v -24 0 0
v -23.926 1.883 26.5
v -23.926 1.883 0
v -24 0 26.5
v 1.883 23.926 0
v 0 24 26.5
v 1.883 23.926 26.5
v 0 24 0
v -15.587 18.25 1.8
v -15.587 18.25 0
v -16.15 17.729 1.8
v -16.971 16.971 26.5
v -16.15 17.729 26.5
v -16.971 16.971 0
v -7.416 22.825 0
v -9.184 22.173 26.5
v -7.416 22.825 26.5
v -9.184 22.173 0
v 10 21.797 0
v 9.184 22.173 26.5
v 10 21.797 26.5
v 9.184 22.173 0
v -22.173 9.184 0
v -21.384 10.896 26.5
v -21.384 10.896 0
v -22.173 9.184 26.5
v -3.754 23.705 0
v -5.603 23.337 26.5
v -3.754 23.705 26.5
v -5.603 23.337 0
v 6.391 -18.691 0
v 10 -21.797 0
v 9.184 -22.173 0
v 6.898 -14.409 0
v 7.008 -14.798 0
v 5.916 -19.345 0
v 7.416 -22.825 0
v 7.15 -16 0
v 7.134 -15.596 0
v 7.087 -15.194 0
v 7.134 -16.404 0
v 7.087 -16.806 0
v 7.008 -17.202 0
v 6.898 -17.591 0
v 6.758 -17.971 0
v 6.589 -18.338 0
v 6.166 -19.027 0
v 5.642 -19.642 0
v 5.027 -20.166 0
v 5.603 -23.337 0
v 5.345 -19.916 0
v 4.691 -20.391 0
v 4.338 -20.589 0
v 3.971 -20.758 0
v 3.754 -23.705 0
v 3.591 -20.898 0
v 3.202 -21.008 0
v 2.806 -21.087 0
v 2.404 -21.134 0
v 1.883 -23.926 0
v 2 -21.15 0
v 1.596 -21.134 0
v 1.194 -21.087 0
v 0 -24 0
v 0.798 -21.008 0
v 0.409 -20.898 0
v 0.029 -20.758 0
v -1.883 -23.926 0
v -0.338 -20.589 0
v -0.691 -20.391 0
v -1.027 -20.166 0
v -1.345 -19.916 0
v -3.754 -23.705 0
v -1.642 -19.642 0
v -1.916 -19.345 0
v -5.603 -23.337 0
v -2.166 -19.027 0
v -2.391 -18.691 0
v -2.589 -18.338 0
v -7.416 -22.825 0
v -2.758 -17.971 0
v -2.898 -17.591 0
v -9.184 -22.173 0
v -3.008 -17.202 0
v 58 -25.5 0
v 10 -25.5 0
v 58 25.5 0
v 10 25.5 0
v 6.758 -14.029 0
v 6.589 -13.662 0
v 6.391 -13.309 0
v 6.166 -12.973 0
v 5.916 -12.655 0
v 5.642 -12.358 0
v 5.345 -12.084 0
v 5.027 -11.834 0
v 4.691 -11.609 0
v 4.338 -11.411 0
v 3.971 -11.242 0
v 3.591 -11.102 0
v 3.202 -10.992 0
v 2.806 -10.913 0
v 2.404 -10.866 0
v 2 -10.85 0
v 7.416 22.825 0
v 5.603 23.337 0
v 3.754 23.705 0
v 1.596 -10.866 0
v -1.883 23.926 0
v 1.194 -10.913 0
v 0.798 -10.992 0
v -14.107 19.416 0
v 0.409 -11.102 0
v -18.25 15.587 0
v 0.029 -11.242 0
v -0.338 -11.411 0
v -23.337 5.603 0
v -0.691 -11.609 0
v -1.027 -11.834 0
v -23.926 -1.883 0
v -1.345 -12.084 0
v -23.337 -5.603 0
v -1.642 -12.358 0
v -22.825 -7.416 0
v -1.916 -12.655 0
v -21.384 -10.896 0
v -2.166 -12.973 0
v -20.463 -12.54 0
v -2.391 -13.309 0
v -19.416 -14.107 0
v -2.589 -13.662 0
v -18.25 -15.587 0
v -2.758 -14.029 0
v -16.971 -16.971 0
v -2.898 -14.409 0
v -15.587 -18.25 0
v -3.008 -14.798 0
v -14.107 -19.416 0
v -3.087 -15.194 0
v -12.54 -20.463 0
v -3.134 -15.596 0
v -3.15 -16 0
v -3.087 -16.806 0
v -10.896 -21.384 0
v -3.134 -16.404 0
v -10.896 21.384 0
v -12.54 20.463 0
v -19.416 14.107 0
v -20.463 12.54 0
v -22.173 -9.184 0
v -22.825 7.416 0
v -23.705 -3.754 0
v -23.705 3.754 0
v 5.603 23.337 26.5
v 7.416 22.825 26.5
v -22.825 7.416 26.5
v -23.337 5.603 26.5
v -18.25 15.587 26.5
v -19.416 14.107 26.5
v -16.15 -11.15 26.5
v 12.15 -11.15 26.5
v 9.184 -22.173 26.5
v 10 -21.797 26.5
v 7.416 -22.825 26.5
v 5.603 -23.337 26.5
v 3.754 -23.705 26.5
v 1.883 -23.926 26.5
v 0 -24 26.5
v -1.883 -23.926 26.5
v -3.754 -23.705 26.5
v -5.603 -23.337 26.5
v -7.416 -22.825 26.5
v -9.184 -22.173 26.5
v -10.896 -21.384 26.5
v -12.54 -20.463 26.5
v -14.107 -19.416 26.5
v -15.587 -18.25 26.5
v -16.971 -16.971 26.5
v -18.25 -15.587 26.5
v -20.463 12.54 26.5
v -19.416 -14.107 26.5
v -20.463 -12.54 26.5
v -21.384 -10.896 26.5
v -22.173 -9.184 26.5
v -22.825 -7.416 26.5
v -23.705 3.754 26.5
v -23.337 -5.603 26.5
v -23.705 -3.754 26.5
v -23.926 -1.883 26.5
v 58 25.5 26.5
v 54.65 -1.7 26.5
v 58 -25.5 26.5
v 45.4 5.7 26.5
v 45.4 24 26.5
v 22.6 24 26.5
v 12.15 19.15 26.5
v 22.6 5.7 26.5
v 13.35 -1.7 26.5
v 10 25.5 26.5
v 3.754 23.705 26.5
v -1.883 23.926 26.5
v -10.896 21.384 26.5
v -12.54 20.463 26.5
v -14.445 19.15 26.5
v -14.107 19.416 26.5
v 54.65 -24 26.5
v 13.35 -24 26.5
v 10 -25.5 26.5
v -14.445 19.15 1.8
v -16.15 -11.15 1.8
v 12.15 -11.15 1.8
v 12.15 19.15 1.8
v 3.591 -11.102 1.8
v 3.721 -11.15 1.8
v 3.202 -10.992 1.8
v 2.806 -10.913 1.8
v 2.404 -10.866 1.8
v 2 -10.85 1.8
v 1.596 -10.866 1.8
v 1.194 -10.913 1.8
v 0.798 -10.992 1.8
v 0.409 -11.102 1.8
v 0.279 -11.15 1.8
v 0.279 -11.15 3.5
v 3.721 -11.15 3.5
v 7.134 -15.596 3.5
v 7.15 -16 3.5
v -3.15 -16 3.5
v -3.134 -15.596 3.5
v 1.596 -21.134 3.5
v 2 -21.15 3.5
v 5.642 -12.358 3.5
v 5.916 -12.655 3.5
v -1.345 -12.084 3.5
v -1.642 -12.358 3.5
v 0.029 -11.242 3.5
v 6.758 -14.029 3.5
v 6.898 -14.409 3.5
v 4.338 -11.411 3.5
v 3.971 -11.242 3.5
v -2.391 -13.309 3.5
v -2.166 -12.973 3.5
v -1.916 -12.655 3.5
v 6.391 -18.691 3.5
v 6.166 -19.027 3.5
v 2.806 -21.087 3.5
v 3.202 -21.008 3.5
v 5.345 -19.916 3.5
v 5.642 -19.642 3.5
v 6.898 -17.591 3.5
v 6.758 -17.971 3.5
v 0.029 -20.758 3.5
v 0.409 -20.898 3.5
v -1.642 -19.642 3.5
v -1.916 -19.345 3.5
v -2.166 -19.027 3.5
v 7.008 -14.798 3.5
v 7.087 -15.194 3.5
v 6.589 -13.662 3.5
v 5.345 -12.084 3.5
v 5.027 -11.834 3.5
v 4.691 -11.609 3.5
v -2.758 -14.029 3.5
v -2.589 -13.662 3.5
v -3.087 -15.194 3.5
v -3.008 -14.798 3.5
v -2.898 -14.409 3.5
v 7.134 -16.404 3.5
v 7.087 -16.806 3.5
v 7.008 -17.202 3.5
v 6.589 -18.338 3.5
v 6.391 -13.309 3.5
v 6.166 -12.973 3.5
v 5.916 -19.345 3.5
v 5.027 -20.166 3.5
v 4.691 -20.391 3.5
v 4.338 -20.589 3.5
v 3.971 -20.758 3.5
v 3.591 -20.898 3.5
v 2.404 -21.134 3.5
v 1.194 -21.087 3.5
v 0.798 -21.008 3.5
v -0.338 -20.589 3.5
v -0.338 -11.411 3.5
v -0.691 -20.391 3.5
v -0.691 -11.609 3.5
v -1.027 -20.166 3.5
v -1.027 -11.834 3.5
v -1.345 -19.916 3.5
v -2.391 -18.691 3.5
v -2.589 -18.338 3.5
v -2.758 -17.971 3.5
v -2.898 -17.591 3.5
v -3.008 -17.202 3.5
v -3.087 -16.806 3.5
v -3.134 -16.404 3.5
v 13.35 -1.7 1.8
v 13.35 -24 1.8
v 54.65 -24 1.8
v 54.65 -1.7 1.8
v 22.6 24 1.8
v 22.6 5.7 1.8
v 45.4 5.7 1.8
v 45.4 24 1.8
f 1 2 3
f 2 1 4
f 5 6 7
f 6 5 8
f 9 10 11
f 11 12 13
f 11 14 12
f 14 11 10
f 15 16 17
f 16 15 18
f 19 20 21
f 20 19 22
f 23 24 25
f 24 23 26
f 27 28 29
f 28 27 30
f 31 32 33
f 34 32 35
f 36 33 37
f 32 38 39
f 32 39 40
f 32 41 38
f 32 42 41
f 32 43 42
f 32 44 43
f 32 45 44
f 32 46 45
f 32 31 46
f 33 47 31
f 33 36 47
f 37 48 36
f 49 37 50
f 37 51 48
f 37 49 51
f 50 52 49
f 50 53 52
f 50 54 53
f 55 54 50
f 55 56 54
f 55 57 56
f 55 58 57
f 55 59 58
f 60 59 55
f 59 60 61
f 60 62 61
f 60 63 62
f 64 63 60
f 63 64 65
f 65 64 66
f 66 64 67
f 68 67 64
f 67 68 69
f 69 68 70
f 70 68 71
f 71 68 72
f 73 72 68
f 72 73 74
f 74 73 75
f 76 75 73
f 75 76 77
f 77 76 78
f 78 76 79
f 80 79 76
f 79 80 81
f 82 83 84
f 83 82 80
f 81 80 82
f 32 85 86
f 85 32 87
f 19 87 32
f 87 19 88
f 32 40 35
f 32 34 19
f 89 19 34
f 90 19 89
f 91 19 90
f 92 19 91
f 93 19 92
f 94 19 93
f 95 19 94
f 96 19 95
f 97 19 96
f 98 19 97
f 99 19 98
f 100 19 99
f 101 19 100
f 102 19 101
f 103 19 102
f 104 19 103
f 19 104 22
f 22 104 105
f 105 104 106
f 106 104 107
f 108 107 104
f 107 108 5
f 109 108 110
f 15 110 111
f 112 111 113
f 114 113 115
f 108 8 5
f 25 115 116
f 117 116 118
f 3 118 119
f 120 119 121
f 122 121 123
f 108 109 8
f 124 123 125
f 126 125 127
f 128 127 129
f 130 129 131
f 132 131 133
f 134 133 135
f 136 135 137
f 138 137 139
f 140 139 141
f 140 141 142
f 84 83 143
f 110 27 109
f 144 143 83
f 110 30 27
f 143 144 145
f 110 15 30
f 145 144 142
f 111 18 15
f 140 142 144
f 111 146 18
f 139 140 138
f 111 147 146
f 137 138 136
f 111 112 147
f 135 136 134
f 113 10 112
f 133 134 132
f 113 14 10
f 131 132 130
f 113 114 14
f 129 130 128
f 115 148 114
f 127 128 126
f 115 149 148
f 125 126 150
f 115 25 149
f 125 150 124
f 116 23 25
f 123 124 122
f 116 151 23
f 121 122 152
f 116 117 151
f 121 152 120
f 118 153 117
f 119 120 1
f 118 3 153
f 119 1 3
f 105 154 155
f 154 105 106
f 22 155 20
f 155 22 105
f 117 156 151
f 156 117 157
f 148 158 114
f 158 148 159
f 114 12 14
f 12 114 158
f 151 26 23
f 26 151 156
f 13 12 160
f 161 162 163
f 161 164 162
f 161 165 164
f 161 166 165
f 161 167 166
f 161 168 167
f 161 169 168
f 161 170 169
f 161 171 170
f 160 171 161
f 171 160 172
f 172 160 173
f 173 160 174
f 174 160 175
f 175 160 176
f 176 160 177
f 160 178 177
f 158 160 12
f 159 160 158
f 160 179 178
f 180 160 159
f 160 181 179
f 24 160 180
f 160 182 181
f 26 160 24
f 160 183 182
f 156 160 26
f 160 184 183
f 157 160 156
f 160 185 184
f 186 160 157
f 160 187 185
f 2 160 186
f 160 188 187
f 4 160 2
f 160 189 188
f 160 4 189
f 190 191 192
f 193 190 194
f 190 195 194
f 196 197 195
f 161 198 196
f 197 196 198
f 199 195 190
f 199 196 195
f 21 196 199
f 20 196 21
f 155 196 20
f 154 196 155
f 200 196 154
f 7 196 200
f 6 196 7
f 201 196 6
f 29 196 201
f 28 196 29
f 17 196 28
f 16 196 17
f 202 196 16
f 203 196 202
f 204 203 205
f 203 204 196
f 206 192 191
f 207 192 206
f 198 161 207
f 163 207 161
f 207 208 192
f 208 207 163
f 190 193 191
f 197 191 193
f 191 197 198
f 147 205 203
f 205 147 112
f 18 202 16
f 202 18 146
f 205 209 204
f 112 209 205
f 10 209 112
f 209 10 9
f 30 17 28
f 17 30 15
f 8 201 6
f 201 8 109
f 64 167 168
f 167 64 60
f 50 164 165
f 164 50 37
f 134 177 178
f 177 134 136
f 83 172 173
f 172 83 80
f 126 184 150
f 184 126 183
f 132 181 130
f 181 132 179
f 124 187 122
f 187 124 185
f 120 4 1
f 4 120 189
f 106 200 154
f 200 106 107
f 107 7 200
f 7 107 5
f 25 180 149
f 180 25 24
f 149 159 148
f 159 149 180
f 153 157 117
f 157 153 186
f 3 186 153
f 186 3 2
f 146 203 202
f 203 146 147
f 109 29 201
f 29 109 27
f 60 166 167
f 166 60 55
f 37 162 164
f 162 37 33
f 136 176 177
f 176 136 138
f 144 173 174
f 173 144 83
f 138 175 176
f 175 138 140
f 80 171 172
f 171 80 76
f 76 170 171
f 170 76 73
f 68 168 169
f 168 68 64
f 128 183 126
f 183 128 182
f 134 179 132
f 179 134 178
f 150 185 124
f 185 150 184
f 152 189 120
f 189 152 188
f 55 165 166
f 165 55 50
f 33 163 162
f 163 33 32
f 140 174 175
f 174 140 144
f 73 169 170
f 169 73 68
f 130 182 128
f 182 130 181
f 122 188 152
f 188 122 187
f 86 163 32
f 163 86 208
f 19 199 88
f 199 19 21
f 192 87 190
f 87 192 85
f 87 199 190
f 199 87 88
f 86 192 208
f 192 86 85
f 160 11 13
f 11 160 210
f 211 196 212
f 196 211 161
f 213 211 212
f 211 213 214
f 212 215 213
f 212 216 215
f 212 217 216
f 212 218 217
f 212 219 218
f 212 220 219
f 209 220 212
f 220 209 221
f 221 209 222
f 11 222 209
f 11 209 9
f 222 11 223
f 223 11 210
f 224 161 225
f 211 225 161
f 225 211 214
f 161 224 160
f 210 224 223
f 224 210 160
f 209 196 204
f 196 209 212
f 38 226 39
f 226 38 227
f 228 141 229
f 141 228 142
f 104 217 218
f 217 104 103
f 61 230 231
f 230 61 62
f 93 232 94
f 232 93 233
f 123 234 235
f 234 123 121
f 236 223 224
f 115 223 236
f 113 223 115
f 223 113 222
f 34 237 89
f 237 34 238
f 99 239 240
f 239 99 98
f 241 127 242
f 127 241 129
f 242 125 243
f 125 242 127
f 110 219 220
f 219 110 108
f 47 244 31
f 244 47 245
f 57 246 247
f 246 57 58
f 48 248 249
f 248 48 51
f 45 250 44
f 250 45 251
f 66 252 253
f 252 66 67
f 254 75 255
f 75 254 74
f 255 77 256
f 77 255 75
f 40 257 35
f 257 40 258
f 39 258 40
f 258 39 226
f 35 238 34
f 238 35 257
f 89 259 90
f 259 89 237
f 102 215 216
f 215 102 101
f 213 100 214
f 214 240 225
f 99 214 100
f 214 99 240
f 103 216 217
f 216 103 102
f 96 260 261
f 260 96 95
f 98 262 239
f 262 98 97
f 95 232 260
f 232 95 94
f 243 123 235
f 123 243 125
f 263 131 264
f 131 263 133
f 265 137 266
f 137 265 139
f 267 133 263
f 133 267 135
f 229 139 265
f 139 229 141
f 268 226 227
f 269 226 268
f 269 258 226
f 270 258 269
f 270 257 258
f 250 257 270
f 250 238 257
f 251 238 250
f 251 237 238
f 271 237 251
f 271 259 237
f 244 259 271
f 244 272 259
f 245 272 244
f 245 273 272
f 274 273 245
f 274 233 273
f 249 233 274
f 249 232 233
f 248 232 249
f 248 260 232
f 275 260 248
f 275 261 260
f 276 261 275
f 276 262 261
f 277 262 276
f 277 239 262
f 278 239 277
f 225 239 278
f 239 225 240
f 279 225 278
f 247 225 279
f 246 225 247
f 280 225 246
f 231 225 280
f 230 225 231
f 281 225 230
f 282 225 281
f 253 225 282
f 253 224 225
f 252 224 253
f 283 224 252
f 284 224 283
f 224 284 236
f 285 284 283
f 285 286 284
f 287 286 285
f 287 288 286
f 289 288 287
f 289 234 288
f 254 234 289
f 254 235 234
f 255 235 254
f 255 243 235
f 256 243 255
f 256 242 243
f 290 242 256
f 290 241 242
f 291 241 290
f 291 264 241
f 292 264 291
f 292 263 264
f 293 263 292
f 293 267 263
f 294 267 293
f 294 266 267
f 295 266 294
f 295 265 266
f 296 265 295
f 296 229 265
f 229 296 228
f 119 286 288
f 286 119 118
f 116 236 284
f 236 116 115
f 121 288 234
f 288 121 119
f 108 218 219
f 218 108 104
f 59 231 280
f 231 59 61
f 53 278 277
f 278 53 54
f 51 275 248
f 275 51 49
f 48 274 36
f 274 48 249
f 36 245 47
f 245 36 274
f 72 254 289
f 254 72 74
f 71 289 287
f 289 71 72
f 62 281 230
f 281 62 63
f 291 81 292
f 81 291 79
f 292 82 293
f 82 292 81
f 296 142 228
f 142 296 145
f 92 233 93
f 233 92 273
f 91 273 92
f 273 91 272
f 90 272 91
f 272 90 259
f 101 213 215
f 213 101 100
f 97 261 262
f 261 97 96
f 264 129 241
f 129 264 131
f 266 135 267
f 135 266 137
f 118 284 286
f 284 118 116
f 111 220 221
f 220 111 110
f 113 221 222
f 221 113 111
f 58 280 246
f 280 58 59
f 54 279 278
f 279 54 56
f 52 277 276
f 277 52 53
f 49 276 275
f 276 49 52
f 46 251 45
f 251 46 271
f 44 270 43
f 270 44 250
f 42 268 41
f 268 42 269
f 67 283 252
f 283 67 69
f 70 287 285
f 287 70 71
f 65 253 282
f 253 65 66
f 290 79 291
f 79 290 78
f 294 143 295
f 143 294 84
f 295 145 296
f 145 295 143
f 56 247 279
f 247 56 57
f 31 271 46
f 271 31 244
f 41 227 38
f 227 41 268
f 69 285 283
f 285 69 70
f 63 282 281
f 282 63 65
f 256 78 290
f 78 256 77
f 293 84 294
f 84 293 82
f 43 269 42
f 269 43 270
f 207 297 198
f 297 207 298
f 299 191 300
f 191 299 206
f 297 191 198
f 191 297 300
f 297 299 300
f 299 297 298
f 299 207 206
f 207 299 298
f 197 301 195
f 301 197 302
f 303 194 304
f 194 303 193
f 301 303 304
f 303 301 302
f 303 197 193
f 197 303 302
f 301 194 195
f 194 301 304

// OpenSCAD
// file: wrist_puck_keyhole_1_0.scad
// ============================================================
//  Wrist-Puck Keyhole Enclosure — First Draft
//  Rev 1.0  |  July 2026  |  Sean (Whitehorse, YT)
//
//  Replaces the circular puck (wrist_puck_enclosure_5_0.scad) with
//  a keyhole silhouette: a round chamber (servo + arm + LRA) joined
//  to an elongated rectangular body (battery/DRV/PowerBoost stack +
//  XIAO/IMU stack), sized against Sean's actual wrist (53mm wide x
//  35mm thick where the watch sits) rather than a fixed diameter
//  that didn't fit.
//
//  Component numbers below are Sean's own measurements from this
//  session, not the earlier file's assumed values -- several
//  changed (battery is 9mm thick now, not 6mm; servo+arm sweep is
//  28x30mm, not just the 21.5x25.1mm body; PowerBoost/XIAO/IMU all
//  slightly different from the rev5 assumptions). Reused without
//  change: WALL, FLOOR_T, LID_T, CLEARANCE, CAP_T, SNAP_* from
//  wrist_puck_enclosure_5_0.scad -- no reason to re-derive numbers
//  that were already validated there.
//
//  FIRST-PASS FLAGS -- explicit, not buried in comments:
//    - RECT_W (51mm) against Sean's 53mm wrist width leaves only
//      ~1mm clearance per side. That's tight. A real dry-fit is not
//      optional here the way it was borderline-optional elsewhere.
//    - Servo pocket fits chamber inner radius with ~1mm margin --
//      also tight. If the actual arm sweep needs clearance beyond
//      the bounding rectangle, this will need revisiting.
//    - LRA position is a placement guess, not derived from a known
//      arm-sweep direction -- flagged in-line below.
//    - No snap tabs, USB-C cutout, or standoff posts yet -- this
//      draft establishes the outer silhouette and the two internal
//      cavities are load-bearing; those details are next-pass.
//    - No lid/cap yet -- bottom shell only, to get the harder shape
//      right first.
// ============================================================

// ── SHARED CONSTANTS (unchanged from wrist_puck_enclosure_5_0) ──
WALL      = 2.2;
FLOOR_T   = 2.0;
LID_T     = 1.8;
CLEARANCE = 0.3;
CAP_T     = 2.0;

$fn = 80;

// ── OUTER SILHOUETTE ─────────────────────────────────────────
// X = along the forearm (0 = chamber center, increasing toward
//     the rectangular body / strap end)
// Y = across the wrist (must stay under ~53mm total)
// Z = vertical, floor at Z=0, same convention as the circular puck

CHAMBER_D = 48;   // round chamber outer diameter
CHAMBER_R = CHAMBER_D / 2;

RECT_L = 48;    // rectangular body outer length (along arm)
RECT_W = 51;    // rectangular body outer width (across arm) --
                 // SEE FIRST-PASS FLAG ABOVE: tight against 53mm wrist
RECT_X0 = 10;   // where the rectangle starts, overlapping into the
                 // chamber circle for a continuous keyhole silhouette

module outer_silhouette(h) {
    union() {
        cylinder(h = h, d = CHAMBER_D);
        translate([RECT_X0, -RECT_W/2, 0])
            cube([RECT_L, RECT_W, h]);
    }
}

// ── SERVO + ARM (chamber) ────────────────────────────────────
// Sean's measured footprint: 28 x 30mm to the end of the arm swing
// (bounding box, not the bare servo body) x 12mm height.
SERVO_W = 28.0 + CLEARANCE;
SERVO_D = 30.0 + CLEARANCE;
SERVO_H = 12.0 + CLEARANCE;
SERVO_CX = -2;   // roughly centered in the chamber; not yet
SERVO_CY = 4;    // finalized against actual arm swing direction

// ── LRA ───────────────────────────────────────────────────────
// FIRST-PASS PLACEMENT GUESS: tucked into the chamber's leftover
// crescent space, away from the servo footprint above. Needs
// verification once the servo's actual mounting orientation (which
// way the arm swings) is fixed -- it's placed clear of the servo's
// bounding box as currently assumed, not clear of the real swept
// arc if that's smaller than the bounding box suggests.
LRA_DIAM = 10.0 + CLEARANCE;
LRA_H    = 3.5;
LRA_CX   = 2;
LRA_CY   = -16;

// ── POWER STACK (battery / DRV / PowerBoost) ─────────────────
// Stacks in Z exactly like the circular puck did -- same X/Y
// center for all three, different heights. Footprint is the
// battery's own (the largest of the three).
BATT_W = 22.0 + CLEARANCE;   // Sean's measured 22mm (incl. shim/tape)
BATT_D = 41.0 + CLEARANCE;
BATT_H = 9.0;                 // measured, incl. shim/foam/kapton tape

DRV_W = 19.0 + CLEARANCE;
DRV_D = 25.0 + CLEARANCE;
DRV_H = 4.0;

PB_W = 22.0 + CLEARANCE;
PB_D = 36.0 + CLEARANCE;      // Sean's remeasure, was 37 in rev5
PB_H = 7.5;

PWR_CX = RECT_X0 + RECT_L/2;      // roughly centered along the rectangle
PWR_CY = -(RECT_W/2 - BATT_W/2 - 1.5);  // offset to one side, 1.5mm margin off the wall

// ── COMPUTE STACK (XIAO / IMU) ────────────────────────────────
// Also stacks in Z -- XIAO on the floor, IMU on top of it.
// IMU is the header-less 601N1 module: 20.6 x 17.8 x 3mm.
XIAO_W = 22.5 + CLEARANCE;
XIAO_D = 18.0 + CLEARANCE;
XIAO_H = 4.5;

IMU_W = 20.6 + CLEARANCE;
IMU_D = 17.8 + CLEARANCE;
IMU_H = 3.0;   // header-less, per Sean's measurement

CPU_CX = PWR_CX;                              // same X-center as power stack
// Y-offset must use XIAO_D (18.3mm, the across-wrist cube dimension
// below), not XIAO_W -- XIAO_W is the along-arm dimension here since
// its cube is [XIAO_W, XIAO_D, ...], long-side-on-X, same convention
// as the (now-fixed) power stack.
CPU_CY = (RECT_W/2 - XIAO_D/2 - 1.5);

// ── BOTTOM SHELL ───────────────────────────────────────────────
module bottom_shell() {
    // Shell height must clear the TALLEST cavity, not just the
    // servo -- the power stack (battery+DRV+PowerBoost, 20.5mm) is
    // taller than the servo pocket (12.3mm). Missed this on the
    // first pass through this file; caught before rendering, not
    // after.
    power_stack_h = BATT_H + DRV_H + PB_H;
    tallest = max(SERVO_H, power_stack_h, XIAO_H + IMU_H);
    shell_h = FLOOR_T + tallest + 4;   // 4mm margin for lid/wall clearance

    difference() {
        outer_silhouette(shell_h);

        // All three cavities must reach the TOP of the shell (open,
        // not a sealed void) -- components need to go in from above,
        // and a lid (not yet built) will close over the top later.
        // The real bug on the first two passes: each cavity only
        // extended to its OWN component height + a small overshoot,
        // which fell well short of shell_h (sized for the TALLEST
        // cavity). Every cavity was therefore a fully enclosed void
        // sealed on all sides -- no way to insert a battery into a
        // bubble with no opening. This wasn't a CGAL quirk; the
        // "12+12 disconnected triangles" from the connectivity
        // checker was CGAL correctly reporting a hollow-with-trapped-
        // void shape (two genuinely disjoint closed surfaces) -- the
        // checker and CGAL were both right, the geometry was wrong.
        // Fixed by overshooting every cavity's top past shell_h.

        // Servo + arm pocket
        translate([SERVO_CX, SERVO_CY, (FLOOR_T - 0.2 + shell_h + 1)/2])
            cube([SERVO_W, SERVO_D, (shell_h + 1) - (FLOOR_T - 0.2)], center = true);

        // LRA floor pocket (bare skin contact) -- opens through the
        // BOTTOM, not the top, so this one is correct as a short cavity
        translate([LRA_CX, LRA_CY, -0.2])
            cylinder(h = LRA_H + 0.2, d = LRA_DIAM);

        // Power stack cavity
        translate([PWR_CX, PWR_CY, (FLOOR_T - 0.2 + shell_h + 1)/2])
            cube([BATT_D, BATT_W, (shell_h + 1) - (FLOOR_T - 0.2)], center = true);

        // Compute stack cavity
        translate([CPU_CX, CPU_CY, (FLOOR_T - 0.2 + shell_h + 1)/2])
            cube([XIAO_W, XIAO_D, (shell_h + 1) - (FLOOR_T - 0.2)], center = true);
    }
}

bottom_shell();
// main file
include <wrist_puck_keyhole_1_0.scad>

// Shallow test tray -- same outer silhouette and cavity footprints
// as the real shell, but at a fraction of the height, purely to
// physically check the XY layout against the real components before
// committing to a full print. Cavities cut straight through this
// shallow height (not testing Z-stack fit, just footprint/spacing).
TEST_H = FLOOR_T + 5;

module floorplan() {
    difference() {
        outer_silhouette(TEST_H);

        translate([SERVO_CX, SERVO_CY, TEST_H/2])
            cube([SERVO_W, SERVO_D, TEST_H + 2], center = true);

        translate([LRA_CX, LRA_CY, -0.2])
            cylinder(h = LRA_H + 0.2, d = LRA_DIAM);

        translate([PWR_CX, PWR_CY, TEST_H/2])
            cube([BATT_D, BATT_W, TEST_H + 2], center = true);

        translate([CPU_CX, CPU_CY, TEST_H/2])
            cube([XIAO_W, XIAO_D, TEST_H + 2], center = true);
    }
}

floorplan();
